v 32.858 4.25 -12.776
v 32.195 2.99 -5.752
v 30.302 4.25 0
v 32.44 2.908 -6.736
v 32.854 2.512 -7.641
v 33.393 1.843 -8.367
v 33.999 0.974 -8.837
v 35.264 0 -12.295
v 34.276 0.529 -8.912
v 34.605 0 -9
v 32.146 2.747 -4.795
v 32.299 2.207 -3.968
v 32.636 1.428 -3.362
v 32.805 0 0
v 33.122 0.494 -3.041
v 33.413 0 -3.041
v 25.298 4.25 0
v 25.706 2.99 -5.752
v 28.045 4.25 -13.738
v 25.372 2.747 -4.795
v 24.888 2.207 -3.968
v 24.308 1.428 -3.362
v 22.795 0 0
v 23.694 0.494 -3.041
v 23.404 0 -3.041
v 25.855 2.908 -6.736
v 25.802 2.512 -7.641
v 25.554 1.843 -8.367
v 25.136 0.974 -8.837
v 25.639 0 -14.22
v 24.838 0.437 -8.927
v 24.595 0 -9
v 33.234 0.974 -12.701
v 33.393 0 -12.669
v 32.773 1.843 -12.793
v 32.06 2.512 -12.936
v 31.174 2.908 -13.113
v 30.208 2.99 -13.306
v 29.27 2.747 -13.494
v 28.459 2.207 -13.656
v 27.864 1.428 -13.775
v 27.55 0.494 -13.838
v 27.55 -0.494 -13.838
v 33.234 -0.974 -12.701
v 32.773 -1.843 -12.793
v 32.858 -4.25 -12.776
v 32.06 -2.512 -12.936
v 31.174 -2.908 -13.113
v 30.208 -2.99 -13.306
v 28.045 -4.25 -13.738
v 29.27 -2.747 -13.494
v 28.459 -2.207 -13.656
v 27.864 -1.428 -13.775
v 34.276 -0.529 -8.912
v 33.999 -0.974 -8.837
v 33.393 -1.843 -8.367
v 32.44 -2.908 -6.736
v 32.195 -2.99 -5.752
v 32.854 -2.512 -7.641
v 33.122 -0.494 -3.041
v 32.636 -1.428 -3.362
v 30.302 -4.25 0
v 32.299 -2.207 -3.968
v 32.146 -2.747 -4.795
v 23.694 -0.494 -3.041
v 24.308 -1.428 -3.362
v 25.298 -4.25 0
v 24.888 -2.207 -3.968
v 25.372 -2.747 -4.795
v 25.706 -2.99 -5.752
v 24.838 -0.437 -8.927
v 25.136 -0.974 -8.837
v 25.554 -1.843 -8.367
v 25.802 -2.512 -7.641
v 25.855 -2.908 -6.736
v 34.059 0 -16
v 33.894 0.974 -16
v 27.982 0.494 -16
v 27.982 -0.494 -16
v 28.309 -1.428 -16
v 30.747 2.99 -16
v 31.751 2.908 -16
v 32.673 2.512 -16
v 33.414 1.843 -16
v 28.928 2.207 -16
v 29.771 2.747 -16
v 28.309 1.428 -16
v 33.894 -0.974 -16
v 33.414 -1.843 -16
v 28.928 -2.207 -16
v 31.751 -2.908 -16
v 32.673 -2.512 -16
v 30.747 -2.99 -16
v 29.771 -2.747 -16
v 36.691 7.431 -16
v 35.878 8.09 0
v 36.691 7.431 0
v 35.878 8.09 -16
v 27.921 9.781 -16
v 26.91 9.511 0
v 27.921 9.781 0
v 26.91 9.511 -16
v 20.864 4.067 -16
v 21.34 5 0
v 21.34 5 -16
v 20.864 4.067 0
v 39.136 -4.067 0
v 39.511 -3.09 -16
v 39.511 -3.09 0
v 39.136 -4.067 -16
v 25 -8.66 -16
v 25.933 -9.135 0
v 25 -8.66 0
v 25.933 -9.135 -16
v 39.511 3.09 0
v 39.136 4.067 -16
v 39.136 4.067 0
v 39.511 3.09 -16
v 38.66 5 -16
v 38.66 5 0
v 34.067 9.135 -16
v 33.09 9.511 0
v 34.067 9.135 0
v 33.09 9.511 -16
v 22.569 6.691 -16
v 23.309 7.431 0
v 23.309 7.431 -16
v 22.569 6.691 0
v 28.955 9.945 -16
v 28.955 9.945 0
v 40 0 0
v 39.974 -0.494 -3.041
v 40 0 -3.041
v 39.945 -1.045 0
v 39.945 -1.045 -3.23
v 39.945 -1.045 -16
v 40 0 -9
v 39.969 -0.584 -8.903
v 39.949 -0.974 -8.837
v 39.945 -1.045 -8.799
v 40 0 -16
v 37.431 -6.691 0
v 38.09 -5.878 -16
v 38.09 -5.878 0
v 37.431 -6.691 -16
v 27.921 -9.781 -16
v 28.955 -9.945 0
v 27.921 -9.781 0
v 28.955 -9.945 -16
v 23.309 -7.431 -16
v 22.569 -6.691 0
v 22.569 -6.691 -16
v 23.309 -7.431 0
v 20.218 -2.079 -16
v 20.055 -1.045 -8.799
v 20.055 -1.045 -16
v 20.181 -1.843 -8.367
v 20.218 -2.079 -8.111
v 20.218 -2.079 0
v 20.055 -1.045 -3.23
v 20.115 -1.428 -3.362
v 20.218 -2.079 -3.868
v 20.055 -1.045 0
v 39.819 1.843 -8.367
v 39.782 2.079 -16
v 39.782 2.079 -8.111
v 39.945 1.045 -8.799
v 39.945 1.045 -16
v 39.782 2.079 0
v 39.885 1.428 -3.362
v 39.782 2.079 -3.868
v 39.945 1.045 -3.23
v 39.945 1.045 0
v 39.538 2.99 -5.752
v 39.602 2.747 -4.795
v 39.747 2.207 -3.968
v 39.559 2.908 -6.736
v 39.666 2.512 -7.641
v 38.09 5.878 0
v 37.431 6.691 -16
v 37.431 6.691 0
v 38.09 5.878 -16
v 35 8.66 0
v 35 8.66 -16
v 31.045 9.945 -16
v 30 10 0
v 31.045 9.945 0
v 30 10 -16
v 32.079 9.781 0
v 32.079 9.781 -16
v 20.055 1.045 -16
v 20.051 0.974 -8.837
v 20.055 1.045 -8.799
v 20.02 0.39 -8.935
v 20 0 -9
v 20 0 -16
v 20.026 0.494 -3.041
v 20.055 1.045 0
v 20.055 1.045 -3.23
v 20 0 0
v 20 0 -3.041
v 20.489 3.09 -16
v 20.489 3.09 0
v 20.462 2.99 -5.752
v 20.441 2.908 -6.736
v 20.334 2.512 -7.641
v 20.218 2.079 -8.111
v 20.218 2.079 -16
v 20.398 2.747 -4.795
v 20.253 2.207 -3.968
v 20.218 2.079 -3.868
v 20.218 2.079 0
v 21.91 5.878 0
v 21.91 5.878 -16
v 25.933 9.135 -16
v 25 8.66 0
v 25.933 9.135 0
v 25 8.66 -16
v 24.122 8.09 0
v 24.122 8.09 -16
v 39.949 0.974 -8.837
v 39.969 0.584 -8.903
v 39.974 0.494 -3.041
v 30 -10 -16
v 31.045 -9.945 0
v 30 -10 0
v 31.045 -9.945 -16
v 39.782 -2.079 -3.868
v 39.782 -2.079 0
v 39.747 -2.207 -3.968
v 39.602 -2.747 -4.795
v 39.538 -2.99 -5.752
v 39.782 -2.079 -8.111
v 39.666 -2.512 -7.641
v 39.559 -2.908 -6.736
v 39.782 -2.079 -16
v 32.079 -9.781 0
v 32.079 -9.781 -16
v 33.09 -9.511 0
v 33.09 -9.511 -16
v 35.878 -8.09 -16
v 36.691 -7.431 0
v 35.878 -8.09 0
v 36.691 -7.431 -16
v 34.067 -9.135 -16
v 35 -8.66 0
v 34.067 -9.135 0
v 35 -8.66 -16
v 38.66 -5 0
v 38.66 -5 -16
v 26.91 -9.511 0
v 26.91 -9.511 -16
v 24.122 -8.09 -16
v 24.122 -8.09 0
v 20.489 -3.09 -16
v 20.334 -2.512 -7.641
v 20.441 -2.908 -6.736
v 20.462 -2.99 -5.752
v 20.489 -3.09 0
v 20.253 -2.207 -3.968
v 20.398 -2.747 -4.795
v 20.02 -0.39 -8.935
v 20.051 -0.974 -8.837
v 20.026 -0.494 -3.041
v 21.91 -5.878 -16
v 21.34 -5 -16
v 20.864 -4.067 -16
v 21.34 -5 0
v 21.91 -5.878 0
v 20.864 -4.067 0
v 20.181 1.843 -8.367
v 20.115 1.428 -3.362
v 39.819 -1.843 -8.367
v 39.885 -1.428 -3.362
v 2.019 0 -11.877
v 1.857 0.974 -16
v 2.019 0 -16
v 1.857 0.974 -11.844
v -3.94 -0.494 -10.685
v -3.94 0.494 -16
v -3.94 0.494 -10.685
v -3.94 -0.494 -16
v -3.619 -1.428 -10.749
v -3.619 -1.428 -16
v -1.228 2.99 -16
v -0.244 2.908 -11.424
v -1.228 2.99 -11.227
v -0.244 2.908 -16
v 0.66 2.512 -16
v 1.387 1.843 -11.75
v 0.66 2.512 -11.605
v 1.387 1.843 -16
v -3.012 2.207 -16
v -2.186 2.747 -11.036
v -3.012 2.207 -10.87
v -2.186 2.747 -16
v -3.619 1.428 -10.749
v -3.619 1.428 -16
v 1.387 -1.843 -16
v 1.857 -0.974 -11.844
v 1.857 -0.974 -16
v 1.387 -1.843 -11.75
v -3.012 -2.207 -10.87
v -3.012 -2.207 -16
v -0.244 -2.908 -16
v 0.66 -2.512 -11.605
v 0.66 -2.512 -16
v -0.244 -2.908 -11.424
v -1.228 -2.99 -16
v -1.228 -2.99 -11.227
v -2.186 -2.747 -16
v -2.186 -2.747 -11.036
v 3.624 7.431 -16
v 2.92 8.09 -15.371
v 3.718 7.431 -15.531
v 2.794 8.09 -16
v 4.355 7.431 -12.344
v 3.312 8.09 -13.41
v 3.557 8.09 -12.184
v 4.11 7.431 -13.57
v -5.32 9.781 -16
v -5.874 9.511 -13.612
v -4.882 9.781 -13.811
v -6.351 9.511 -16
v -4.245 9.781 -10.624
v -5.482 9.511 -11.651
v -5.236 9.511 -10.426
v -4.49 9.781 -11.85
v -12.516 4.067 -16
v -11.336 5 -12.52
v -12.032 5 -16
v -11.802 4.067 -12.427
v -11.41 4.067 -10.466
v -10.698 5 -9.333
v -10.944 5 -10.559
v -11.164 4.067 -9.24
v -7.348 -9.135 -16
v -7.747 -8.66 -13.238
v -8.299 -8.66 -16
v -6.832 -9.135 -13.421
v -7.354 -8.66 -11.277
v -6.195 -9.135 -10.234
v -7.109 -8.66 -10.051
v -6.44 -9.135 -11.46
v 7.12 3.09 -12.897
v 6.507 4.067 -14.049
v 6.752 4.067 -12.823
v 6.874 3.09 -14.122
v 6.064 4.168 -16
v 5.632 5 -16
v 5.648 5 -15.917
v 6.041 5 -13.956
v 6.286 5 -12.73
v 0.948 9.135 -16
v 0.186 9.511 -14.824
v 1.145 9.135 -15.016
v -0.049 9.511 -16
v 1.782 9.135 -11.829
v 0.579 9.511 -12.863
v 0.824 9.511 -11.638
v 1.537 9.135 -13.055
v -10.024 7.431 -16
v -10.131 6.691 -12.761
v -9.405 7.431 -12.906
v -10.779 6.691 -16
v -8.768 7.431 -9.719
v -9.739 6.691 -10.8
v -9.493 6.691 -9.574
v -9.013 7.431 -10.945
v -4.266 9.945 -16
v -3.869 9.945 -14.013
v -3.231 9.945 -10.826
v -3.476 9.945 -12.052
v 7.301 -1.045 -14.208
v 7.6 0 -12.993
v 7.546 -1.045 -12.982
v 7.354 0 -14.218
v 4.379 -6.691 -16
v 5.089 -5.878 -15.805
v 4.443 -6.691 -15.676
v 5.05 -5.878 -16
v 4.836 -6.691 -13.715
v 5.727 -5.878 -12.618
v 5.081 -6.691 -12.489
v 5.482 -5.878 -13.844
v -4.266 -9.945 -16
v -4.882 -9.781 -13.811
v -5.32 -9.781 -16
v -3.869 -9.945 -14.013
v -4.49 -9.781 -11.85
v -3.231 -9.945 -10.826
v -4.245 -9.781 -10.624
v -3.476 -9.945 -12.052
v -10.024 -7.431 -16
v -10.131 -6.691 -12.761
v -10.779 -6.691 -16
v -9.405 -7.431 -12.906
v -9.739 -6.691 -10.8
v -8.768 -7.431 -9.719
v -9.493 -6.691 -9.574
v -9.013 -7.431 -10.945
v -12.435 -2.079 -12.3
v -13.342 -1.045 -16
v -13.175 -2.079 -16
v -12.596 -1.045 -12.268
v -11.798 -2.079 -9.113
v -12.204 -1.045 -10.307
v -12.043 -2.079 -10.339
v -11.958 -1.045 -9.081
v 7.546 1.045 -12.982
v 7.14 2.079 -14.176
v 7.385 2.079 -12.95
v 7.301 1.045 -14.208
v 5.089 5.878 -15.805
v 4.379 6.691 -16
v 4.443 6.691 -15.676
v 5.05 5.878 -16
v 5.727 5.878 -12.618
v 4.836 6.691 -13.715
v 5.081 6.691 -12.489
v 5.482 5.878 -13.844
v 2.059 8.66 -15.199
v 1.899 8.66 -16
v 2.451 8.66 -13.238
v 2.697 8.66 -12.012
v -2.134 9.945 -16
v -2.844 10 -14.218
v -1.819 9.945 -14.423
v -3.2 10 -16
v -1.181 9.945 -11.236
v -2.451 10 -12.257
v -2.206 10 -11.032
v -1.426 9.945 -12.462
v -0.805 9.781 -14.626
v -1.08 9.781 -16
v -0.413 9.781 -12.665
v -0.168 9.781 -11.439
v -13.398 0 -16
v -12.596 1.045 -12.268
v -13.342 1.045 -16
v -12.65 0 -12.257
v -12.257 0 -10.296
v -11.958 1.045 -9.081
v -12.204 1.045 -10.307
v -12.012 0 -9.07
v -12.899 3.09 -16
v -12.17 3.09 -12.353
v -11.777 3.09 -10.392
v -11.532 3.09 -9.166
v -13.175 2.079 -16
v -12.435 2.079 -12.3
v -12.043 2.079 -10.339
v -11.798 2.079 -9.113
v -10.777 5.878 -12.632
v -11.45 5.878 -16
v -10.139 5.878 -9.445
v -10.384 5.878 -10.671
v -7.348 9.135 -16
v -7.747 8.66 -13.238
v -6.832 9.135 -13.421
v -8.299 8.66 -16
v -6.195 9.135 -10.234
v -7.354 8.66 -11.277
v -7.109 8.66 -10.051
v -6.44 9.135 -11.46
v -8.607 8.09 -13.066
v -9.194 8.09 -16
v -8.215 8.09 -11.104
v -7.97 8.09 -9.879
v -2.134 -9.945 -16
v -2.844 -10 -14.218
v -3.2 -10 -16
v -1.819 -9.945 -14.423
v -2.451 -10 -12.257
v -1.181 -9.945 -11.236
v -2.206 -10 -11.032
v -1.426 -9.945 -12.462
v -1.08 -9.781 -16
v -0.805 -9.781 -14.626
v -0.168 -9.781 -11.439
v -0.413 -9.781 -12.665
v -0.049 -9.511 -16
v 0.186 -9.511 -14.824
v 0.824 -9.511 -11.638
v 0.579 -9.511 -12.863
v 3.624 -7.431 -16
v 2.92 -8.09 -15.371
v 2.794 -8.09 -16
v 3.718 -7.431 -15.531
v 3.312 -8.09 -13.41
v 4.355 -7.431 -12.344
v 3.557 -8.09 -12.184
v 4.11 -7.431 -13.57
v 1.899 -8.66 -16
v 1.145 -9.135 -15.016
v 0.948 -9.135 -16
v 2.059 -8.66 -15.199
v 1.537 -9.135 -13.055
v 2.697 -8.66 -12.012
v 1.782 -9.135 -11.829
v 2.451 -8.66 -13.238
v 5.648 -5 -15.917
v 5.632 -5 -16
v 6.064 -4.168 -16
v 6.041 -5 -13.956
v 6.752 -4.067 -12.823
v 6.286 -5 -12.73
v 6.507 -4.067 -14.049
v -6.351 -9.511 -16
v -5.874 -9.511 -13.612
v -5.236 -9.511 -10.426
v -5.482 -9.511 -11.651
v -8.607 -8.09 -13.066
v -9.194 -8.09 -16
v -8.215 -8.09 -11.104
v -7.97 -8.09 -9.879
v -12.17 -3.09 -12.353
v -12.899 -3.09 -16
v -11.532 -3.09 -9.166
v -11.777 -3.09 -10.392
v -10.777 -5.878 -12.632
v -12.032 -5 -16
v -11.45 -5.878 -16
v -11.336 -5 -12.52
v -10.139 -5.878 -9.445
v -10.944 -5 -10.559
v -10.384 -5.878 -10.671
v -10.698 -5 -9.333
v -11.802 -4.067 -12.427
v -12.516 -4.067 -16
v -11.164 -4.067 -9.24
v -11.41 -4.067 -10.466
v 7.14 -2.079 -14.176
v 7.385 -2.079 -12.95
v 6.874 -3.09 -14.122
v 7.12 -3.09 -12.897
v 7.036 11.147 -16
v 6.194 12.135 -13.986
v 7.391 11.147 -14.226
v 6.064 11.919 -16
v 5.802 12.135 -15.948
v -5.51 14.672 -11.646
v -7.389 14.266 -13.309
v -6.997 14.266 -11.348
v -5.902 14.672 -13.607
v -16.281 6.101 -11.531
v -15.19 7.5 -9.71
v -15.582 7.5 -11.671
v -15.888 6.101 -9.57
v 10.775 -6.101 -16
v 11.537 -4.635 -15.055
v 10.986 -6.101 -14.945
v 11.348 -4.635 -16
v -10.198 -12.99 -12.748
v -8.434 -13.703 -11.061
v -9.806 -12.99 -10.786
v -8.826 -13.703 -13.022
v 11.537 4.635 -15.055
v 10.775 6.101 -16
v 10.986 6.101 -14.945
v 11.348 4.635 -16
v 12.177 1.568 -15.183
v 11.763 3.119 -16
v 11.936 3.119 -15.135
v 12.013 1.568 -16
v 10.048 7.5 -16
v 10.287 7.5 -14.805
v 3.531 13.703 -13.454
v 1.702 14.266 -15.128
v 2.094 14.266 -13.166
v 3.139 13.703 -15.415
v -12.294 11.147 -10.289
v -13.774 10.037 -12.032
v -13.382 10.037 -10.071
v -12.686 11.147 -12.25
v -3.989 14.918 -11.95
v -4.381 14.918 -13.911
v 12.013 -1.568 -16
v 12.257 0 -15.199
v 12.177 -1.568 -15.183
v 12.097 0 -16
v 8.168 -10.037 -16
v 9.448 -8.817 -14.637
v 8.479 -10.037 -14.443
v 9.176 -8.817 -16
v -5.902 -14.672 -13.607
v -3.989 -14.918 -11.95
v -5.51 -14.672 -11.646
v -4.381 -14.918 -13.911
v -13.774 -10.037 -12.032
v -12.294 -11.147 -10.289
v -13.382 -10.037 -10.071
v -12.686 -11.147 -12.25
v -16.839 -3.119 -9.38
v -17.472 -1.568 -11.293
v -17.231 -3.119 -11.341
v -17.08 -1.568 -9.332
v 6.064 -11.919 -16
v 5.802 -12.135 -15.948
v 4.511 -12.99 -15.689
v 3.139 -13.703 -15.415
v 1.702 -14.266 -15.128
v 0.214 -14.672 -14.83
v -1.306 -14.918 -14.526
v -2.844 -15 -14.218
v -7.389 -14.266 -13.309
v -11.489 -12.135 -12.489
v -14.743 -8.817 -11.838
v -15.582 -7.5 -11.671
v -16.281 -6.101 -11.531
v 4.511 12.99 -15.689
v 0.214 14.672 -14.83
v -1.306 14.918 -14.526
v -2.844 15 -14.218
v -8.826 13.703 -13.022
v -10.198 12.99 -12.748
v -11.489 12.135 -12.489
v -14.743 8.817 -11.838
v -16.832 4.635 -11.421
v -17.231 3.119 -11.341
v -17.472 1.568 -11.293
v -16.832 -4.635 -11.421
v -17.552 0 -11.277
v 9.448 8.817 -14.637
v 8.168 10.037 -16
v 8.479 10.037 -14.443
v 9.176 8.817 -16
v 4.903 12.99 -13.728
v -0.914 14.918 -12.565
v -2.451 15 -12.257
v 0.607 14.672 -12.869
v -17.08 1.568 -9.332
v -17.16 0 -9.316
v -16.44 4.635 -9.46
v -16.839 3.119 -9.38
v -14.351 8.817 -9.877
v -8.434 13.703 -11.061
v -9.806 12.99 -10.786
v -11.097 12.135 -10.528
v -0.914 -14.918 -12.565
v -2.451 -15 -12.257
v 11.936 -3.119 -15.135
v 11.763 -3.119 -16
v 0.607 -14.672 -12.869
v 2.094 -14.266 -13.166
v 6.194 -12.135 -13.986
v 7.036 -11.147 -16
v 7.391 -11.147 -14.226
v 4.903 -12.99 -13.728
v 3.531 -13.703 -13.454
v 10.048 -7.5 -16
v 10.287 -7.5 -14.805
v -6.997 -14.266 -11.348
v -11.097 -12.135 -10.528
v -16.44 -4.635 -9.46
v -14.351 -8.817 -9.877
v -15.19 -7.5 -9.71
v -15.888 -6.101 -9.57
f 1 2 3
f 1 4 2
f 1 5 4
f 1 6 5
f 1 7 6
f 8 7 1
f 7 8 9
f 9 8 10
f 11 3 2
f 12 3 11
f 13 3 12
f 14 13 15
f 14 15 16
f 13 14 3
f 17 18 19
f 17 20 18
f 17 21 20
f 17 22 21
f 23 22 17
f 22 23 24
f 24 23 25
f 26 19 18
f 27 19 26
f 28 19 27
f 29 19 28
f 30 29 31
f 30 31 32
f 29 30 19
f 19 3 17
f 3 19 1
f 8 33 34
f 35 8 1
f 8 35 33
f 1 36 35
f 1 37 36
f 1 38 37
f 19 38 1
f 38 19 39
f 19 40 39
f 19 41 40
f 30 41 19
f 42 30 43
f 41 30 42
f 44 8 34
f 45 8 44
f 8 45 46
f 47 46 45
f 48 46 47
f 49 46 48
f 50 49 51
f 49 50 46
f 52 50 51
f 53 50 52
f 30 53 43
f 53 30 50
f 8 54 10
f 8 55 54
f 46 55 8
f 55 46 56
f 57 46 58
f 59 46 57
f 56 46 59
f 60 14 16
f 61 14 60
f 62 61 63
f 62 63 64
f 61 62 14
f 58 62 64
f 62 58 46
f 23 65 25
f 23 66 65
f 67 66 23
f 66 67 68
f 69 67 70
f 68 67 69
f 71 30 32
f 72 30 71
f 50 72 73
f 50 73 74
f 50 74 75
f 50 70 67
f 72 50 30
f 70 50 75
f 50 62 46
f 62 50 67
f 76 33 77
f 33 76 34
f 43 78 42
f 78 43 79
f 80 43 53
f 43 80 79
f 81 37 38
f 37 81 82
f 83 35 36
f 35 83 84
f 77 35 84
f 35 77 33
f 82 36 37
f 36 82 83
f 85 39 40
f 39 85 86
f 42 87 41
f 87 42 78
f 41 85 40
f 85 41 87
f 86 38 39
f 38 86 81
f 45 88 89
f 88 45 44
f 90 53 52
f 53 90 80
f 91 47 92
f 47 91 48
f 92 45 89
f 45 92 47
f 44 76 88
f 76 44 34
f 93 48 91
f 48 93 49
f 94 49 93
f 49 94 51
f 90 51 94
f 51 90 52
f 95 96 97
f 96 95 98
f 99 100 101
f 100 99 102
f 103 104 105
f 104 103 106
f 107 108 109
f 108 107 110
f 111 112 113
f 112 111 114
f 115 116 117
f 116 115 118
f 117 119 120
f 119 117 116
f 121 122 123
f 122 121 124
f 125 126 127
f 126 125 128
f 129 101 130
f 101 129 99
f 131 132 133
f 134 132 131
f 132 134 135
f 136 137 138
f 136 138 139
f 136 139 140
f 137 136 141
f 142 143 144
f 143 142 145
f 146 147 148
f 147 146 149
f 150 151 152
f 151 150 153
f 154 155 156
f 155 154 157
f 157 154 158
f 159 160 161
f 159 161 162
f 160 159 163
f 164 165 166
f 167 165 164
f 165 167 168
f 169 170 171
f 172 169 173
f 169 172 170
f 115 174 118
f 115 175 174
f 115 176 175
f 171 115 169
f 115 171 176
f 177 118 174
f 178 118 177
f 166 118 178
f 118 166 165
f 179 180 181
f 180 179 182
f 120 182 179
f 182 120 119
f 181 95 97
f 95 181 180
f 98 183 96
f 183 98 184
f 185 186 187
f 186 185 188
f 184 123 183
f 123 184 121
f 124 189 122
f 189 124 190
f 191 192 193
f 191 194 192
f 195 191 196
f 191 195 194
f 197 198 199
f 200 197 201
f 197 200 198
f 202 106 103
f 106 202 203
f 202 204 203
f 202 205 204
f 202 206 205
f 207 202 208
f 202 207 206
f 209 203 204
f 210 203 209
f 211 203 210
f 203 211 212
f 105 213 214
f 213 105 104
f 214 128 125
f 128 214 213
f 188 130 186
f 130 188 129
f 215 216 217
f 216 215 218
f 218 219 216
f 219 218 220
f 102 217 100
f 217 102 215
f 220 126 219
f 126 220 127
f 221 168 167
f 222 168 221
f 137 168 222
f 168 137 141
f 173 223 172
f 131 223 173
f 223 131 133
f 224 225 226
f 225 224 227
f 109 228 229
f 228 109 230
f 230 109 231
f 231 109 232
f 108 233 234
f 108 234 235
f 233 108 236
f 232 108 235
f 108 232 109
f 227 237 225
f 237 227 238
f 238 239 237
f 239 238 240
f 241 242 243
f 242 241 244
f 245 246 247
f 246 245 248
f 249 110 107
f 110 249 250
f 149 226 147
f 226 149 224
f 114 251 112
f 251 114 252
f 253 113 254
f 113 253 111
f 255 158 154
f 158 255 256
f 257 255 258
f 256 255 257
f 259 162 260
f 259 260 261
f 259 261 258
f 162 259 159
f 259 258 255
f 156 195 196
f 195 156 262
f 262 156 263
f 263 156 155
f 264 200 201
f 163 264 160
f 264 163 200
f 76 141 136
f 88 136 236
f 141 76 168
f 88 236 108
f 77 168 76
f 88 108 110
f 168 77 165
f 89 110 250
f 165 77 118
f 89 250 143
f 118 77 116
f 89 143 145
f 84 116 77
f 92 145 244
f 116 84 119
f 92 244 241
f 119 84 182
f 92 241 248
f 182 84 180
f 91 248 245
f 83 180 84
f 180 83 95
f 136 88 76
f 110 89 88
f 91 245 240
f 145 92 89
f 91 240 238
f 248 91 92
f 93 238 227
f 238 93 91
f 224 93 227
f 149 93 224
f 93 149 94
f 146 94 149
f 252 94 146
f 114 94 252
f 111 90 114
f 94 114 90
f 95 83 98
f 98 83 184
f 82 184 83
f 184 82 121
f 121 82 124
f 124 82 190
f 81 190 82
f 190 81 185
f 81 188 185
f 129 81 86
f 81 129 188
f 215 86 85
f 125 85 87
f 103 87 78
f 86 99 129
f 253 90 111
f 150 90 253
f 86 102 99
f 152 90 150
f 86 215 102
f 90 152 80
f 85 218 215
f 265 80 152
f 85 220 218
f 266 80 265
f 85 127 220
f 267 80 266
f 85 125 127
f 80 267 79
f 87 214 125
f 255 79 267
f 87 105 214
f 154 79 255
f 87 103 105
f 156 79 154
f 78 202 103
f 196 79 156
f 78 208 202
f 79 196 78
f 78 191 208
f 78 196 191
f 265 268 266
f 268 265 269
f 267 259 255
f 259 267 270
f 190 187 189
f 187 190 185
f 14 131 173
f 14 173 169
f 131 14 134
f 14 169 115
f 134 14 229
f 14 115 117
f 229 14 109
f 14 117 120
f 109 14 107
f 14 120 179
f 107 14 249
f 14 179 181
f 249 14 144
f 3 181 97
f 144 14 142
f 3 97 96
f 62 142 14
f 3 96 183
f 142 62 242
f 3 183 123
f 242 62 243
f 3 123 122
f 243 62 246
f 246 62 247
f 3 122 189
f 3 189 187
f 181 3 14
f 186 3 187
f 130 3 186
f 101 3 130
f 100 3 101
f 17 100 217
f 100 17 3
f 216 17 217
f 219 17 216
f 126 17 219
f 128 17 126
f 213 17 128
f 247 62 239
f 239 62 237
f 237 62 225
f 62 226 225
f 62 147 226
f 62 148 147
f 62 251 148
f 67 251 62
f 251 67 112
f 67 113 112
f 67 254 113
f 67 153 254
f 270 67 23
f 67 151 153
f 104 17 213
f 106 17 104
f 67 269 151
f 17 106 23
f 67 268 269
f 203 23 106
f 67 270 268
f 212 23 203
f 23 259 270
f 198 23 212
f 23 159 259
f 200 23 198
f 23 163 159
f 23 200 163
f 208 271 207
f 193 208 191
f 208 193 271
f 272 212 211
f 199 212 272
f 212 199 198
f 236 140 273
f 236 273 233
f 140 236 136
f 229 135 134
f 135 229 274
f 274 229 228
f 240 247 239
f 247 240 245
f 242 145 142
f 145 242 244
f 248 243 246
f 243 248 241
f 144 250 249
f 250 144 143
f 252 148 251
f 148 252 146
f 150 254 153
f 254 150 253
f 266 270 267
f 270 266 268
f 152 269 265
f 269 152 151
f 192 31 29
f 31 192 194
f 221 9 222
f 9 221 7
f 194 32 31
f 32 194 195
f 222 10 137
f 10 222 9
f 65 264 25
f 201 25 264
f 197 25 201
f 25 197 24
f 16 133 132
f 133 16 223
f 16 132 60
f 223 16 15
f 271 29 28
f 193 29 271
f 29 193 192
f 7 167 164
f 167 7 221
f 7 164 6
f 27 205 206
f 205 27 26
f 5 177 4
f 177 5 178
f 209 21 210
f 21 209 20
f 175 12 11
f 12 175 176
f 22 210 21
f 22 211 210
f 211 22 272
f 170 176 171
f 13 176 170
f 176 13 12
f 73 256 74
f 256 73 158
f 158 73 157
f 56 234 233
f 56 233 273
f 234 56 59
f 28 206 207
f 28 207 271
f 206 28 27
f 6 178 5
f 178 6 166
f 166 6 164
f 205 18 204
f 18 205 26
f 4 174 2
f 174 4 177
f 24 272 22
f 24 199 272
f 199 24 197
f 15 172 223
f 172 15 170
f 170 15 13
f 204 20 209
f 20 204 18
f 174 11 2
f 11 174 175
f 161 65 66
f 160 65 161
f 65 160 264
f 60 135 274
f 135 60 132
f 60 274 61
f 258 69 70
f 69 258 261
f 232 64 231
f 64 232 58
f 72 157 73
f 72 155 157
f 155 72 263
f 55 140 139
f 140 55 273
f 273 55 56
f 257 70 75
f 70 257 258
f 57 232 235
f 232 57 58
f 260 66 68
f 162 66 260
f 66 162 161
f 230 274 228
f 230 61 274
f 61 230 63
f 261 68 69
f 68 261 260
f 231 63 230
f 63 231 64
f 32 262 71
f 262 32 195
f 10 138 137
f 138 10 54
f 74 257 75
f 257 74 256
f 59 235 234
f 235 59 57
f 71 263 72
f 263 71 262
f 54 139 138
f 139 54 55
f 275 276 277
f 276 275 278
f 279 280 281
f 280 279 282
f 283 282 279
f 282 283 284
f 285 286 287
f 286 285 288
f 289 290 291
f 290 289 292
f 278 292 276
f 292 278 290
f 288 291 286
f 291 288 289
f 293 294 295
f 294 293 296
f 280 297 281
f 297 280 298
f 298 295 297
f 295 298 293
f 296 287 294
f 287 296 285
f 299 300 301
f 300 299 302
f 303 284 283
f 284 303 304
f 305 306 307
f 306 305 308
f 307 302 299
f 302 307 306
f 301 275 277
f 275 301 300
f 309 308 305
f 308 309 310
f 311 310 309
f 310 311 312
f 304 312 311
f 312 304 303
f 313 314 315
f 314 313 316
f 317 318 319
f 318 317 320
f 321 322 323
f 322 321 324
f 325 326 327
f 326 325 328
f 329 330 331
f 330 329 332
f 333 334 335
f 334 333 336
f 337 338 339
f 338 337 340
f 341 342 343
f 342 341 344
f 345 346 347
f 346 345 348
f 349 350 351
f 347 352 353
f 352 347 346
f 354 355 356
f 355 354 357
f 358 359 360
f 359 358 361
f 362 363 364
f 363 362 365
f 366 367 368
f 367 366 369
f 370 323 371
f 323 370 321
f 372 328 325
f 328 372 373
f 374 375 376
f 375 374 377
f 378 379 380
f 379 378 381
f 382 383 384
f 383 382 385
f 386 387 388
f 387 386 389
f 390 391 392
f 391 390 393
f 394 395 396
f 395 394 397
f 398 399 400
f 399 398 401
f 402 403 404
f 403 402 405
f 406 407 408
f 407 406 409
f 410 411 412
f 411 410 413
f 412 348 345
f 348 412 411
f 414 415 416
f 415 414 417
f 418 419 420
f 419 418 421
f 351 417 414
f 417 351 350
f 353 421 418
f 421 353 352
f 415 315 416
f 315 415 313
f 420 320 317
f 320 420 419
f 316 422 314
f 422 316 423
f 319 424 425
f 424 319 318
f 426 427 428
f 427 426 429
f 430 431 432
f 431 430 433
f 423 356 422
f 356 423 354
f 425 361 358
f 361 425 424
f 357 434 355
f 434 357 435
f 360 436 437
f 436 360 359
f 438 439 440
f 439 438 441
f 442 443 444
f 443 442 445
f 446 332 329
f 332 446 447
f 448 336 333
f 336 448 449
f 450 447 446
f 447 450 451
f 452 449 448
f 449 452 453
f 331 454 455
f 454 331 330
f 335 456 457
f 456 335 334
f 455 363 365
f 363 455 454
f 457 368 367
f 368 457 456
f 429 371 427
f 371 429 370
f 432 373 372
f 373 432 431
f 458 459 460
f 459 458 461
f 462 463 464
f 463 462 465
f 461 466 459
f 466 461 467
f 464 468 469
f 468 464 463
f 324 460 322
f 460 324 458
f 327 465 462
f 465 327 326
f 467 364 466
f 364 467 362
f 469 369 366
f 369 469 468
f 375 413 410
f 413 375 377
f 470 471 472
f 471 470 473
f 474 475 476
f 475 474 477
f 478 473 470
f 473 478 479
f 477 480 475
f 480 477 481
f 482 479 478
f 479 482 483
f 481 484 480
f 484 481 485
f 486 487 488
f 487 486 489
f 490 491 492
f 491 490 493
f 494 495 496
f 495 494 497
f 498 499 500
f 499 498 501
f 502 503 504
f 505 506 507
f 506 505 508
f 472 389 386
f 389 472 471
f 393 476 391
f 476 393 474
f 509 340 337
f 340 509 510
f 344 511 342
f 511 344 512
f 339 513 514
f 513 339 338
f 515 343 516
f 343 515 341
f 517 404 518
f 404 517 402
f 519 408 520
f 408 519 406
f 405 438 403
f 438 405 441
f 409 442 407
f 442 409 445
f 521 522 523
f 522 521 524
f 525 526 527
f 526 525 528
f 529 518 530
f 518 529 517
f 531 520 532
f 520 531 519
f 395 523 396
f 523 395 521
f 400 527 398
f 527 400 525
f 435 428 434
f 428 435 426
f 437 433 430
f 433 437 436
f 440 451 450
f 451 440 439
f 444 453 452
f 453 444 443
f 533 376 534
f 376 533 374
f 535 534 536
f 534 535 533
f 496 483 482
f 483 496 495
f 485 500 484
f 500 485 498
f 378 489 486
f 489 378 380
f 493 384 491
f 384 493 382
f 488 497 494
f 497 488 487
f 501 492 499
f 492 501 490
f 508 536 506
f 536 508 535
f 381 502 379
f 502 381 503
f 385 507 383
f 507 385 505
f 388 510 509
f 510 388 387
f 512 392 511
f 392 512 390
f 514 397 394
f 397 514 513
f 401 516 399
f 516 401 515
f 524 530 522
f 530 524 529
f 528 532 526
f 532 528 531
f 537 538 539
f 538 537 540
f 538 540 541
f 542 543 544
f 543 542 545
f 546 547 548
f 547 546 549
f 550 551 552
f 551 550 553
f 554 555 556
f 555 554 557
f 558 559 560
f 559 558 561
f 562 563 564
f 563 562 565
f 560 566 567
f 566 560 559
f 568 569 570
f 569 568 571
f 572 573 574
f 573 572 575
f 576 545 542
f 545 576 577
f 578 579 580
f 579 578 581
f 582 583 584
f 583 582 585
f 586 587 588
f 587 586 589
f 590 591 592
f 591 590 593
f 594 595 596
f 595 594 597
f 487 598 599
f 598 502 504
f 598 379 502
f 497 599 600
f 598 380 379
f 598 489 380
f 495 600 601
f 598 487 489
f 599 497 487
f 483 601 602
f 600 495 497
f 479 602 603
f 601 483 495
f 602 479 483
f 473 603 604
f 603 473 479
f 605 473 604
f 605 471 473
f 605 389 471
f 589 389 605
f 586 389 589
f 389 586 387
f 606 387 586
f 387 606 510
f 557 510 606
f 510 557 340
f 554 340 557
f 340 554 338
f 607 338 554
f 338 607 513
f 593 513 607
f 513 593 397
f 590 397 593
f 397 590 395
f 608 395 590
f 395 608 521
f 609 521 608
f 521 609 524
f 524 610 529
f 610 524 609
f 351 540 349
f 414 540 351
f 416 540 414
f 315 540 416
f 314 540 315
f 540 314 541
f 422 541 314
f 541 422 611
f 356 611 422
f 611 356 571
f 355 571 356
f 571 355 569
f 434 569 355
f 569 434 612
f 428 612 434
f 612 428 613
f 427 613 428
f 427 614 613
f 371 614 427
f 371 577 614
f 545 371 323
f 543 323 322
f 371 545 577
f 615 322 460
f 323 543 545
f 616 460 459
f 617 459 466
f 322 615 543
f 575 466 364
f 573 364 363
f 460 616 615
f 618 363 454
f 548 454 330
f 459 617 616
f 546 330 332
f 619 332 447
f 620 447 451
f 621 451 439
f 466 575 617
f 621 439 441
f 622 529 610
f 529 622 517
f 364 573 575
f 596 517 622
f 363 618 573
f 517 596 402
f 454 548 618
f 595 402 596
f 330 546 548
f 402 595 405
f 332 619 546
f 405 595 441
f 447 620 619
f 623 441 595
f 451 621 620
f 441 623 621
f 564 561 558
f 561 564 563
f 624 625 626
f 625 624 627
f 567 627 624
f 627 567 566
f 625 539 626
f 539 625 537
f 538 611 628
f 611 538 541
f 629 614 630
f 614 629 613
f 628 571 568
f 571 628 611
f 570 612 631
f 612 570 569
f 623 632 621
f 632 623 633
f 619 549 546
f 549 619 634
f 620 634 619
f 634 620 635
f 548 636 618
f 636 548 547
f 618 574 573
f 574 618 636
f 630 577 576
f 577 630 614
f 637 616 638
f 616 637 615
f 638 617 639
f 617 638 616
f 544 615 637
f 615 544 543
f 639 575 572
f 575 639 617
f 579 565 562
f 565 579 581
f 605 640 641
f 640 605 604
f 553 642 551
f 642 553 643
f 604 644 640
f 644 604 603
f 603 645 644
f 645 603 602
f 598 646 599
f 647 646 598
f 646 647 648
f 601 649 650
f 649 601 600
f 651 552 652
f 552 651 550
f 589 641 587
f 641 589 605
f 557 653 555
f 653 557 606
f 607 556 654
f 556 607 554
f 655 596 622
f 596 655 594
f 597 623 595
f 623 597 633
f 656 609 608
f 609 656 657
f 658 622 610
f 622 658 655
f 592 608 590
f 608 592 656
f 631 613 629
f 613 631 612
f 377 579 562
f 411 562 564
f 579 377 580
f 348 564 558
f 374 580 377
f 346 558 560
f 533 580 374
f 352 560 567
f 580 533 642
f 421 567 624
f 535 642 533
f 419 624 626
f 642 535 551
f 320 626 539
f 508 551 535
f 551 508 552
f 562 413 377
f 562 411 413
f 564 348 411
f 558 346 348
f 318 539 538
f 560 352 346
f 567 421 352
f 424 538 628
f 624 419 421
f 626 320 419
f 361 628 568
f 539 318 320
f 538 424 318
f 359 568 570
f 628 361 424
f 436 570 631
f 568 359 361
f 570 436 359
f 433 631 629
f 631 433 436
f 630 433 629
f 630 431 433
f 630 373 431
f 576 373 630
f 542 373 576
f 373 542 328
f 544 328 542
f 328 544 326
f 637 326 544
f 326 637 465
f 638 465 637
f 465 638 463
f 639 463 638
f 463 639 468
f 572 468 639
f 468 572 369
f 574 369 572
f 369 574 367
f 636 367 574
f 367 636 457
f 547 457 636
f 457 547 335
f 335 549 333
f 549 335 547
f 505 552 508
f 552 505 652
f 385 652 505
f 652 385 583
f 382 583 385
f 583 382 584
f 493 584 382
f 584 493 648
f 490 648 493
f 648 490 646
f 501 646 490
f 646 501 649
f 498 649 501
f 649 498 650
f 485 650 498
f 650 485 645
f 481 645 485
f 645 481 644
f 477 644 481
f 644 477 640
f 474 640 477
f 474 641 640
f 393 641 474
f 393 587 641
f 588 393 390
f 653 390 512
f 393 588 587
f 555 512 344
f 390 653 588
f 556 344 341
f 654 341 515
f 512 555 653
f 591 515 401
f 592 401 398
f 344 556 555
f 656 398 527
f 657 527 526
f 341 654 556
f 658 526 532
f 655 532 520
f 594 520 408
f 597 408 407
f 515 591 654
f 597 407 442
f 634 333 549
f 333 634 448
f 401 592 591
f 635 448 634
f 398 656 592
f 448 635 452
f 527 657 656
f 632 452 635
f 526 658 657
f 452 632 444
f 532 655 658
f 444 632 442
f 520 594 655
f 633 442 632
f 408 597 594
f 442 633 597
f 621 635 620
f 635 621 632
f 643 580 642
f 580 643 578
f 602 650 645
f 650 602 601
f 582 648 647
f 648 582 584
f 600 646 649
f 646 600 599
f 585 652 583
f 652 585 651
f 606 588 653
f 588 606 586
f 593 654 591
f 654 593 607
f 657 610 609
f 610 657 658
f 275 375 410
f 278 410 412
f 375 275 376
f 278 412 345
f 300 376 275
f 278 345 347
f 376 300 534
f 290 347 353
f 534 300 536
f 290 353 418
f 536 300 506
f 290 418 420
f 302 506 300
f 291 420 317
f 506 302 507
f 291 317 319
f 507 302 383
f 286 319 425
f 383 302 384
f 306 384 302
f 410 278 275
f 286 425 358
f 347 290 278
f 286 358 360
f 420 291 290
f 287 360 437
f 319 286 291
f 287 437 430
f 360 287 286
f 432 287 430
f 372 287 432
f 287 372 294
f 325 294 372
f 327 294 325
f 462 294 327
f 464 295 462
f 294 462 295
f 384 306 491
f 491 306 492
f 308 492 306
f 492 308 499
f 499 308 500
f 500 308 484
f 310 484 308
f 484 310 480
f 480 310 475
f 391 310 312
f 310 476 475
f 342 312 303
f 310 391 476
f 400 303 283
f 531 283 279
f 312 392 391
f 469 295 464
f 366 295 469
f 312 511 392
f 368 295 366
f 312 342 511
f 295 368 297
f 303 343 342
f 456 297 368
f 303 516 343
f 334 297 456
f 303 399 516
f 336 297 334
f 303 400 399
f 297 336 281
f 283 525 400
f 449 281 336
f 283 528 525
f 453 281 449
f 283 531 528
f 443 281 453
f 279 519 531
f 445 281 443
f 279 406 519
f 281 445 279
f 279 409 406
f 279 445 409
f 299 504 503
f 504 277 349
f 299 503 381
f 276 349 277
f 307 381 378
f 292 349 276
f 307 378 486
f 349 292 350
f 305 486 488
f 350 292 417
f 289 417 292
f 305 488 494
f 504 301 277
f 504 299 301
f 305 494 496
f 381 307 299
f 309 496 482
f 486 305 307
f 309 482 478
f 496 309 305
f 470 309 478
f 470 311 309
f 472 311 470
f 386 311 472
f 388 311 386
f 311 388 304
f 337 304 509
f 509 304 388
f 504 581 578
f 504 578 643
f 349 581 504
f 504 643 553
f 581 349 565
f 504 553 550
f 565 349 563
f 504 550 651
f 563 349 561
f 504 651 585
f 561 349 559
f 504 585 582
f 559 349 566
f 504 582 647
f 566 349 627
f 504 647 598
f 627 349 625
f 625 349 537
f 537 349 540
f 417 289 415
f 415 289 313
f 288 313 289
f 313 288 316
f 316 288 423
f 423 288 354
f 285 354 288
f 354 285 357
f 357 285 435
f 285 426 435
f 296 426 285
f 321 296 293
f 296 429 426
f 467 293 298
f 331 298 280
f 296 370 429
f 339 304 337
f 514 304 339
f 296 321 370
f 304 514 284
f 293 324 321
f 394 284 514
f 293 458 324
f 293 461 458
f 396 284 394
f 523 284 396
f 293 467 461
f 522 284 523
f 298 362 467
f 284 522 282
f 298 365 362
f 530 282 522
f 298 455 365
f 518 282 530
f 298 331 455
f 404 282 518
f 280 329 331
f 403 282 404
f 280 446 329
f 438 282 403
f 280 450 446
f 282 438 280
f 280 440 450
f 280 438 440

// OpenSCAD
$fs = 1;
$fa = 6;
rake = 65;
forkLen = 325;
rakeOffsetAngle = 1 * (90 - atan(forkLen/rake));

forkHoleD = 20;
big = 100;
module boltCutouts() {
    translate([-2, 0, 5]) rotate([0, -rakeOffsetAngle, 0]) {
        cylinder(d=8.5/cos(180/6), $fn=6, h=25, center=true); // aluminum insert
        cylinder(d=6, h=100, center=true); // fender bolt hole
    }
}
module forkInsert() {
    difference() {
        translate([0,0,-10])
            cylinder(d=forkHoleD, h=16, center=false);
        boltCutouts();
        rotate([0,90,0])
            cylinder(d=6, h=big, center=true); // fork crown bolt hole
    }
}
translate([30, 0, -6]) forkInsert();
module forkMount(args) {
    rotate([0, 1*rakeOffsetAngle, 0]) difference() {
        union () {
            translate([0,0,-20])
                cylinder(d=forkHoleD, h=25, center=false);
                translate([0,0,-14.5])
                    cylinder(d=30, h=2, center=false);
        }
        scale([1.01, 1.01, 18/16]) hull() forkInsert();
        boltCutouts();
        // make a cube whose top surface is parallel to the bottom of the fork crown
        // then rotate it so that the top surface is tangent to the fender circle
        // that gives us a flat (printable) bottom suface for the mount
        rotate([0, -rakeOffsetAngle, 0])
            translate([0, 0, -forkLen - 16])
                cube([2*forkLen, 60, 2*forkLen], center=true);

        // sanity check: show the fender circle based on translation to make
        // sure our rotation is correct
        //translate([rake, 0, -forkLen]) rotate([90,0,0]) cylinder(d=(584 + 46)/cos(180/90), h=60, center=true, $fn=90);
    }
}

module washer(args) {
    offset = sin(rakeOffsetAngle) * forkHoleD;
    rotate([0, -1*rakeOffsetAngle, 0])
        intersection() {
            translate([0, 0, offset/2])
                rotate([0, 1*rakeOffsetAngle, 0])
                    difference() {
                        cylinder(d=forkHoleD, h=30, center=false);
                        cylinder(d=6, h=big, center=true); // bolt hole
                    }
            cylinder(r=big, h=offset, center=false);
        }
}
*rotate([0, -rakeOffsetAngle, 0]) {
    translate([0,0,16]) forkMount();
    translate([-4,0,-8]) rotate([0, 1*rakeOffsetAngle, 0]) washer();
}
forkMount();
*washer();
